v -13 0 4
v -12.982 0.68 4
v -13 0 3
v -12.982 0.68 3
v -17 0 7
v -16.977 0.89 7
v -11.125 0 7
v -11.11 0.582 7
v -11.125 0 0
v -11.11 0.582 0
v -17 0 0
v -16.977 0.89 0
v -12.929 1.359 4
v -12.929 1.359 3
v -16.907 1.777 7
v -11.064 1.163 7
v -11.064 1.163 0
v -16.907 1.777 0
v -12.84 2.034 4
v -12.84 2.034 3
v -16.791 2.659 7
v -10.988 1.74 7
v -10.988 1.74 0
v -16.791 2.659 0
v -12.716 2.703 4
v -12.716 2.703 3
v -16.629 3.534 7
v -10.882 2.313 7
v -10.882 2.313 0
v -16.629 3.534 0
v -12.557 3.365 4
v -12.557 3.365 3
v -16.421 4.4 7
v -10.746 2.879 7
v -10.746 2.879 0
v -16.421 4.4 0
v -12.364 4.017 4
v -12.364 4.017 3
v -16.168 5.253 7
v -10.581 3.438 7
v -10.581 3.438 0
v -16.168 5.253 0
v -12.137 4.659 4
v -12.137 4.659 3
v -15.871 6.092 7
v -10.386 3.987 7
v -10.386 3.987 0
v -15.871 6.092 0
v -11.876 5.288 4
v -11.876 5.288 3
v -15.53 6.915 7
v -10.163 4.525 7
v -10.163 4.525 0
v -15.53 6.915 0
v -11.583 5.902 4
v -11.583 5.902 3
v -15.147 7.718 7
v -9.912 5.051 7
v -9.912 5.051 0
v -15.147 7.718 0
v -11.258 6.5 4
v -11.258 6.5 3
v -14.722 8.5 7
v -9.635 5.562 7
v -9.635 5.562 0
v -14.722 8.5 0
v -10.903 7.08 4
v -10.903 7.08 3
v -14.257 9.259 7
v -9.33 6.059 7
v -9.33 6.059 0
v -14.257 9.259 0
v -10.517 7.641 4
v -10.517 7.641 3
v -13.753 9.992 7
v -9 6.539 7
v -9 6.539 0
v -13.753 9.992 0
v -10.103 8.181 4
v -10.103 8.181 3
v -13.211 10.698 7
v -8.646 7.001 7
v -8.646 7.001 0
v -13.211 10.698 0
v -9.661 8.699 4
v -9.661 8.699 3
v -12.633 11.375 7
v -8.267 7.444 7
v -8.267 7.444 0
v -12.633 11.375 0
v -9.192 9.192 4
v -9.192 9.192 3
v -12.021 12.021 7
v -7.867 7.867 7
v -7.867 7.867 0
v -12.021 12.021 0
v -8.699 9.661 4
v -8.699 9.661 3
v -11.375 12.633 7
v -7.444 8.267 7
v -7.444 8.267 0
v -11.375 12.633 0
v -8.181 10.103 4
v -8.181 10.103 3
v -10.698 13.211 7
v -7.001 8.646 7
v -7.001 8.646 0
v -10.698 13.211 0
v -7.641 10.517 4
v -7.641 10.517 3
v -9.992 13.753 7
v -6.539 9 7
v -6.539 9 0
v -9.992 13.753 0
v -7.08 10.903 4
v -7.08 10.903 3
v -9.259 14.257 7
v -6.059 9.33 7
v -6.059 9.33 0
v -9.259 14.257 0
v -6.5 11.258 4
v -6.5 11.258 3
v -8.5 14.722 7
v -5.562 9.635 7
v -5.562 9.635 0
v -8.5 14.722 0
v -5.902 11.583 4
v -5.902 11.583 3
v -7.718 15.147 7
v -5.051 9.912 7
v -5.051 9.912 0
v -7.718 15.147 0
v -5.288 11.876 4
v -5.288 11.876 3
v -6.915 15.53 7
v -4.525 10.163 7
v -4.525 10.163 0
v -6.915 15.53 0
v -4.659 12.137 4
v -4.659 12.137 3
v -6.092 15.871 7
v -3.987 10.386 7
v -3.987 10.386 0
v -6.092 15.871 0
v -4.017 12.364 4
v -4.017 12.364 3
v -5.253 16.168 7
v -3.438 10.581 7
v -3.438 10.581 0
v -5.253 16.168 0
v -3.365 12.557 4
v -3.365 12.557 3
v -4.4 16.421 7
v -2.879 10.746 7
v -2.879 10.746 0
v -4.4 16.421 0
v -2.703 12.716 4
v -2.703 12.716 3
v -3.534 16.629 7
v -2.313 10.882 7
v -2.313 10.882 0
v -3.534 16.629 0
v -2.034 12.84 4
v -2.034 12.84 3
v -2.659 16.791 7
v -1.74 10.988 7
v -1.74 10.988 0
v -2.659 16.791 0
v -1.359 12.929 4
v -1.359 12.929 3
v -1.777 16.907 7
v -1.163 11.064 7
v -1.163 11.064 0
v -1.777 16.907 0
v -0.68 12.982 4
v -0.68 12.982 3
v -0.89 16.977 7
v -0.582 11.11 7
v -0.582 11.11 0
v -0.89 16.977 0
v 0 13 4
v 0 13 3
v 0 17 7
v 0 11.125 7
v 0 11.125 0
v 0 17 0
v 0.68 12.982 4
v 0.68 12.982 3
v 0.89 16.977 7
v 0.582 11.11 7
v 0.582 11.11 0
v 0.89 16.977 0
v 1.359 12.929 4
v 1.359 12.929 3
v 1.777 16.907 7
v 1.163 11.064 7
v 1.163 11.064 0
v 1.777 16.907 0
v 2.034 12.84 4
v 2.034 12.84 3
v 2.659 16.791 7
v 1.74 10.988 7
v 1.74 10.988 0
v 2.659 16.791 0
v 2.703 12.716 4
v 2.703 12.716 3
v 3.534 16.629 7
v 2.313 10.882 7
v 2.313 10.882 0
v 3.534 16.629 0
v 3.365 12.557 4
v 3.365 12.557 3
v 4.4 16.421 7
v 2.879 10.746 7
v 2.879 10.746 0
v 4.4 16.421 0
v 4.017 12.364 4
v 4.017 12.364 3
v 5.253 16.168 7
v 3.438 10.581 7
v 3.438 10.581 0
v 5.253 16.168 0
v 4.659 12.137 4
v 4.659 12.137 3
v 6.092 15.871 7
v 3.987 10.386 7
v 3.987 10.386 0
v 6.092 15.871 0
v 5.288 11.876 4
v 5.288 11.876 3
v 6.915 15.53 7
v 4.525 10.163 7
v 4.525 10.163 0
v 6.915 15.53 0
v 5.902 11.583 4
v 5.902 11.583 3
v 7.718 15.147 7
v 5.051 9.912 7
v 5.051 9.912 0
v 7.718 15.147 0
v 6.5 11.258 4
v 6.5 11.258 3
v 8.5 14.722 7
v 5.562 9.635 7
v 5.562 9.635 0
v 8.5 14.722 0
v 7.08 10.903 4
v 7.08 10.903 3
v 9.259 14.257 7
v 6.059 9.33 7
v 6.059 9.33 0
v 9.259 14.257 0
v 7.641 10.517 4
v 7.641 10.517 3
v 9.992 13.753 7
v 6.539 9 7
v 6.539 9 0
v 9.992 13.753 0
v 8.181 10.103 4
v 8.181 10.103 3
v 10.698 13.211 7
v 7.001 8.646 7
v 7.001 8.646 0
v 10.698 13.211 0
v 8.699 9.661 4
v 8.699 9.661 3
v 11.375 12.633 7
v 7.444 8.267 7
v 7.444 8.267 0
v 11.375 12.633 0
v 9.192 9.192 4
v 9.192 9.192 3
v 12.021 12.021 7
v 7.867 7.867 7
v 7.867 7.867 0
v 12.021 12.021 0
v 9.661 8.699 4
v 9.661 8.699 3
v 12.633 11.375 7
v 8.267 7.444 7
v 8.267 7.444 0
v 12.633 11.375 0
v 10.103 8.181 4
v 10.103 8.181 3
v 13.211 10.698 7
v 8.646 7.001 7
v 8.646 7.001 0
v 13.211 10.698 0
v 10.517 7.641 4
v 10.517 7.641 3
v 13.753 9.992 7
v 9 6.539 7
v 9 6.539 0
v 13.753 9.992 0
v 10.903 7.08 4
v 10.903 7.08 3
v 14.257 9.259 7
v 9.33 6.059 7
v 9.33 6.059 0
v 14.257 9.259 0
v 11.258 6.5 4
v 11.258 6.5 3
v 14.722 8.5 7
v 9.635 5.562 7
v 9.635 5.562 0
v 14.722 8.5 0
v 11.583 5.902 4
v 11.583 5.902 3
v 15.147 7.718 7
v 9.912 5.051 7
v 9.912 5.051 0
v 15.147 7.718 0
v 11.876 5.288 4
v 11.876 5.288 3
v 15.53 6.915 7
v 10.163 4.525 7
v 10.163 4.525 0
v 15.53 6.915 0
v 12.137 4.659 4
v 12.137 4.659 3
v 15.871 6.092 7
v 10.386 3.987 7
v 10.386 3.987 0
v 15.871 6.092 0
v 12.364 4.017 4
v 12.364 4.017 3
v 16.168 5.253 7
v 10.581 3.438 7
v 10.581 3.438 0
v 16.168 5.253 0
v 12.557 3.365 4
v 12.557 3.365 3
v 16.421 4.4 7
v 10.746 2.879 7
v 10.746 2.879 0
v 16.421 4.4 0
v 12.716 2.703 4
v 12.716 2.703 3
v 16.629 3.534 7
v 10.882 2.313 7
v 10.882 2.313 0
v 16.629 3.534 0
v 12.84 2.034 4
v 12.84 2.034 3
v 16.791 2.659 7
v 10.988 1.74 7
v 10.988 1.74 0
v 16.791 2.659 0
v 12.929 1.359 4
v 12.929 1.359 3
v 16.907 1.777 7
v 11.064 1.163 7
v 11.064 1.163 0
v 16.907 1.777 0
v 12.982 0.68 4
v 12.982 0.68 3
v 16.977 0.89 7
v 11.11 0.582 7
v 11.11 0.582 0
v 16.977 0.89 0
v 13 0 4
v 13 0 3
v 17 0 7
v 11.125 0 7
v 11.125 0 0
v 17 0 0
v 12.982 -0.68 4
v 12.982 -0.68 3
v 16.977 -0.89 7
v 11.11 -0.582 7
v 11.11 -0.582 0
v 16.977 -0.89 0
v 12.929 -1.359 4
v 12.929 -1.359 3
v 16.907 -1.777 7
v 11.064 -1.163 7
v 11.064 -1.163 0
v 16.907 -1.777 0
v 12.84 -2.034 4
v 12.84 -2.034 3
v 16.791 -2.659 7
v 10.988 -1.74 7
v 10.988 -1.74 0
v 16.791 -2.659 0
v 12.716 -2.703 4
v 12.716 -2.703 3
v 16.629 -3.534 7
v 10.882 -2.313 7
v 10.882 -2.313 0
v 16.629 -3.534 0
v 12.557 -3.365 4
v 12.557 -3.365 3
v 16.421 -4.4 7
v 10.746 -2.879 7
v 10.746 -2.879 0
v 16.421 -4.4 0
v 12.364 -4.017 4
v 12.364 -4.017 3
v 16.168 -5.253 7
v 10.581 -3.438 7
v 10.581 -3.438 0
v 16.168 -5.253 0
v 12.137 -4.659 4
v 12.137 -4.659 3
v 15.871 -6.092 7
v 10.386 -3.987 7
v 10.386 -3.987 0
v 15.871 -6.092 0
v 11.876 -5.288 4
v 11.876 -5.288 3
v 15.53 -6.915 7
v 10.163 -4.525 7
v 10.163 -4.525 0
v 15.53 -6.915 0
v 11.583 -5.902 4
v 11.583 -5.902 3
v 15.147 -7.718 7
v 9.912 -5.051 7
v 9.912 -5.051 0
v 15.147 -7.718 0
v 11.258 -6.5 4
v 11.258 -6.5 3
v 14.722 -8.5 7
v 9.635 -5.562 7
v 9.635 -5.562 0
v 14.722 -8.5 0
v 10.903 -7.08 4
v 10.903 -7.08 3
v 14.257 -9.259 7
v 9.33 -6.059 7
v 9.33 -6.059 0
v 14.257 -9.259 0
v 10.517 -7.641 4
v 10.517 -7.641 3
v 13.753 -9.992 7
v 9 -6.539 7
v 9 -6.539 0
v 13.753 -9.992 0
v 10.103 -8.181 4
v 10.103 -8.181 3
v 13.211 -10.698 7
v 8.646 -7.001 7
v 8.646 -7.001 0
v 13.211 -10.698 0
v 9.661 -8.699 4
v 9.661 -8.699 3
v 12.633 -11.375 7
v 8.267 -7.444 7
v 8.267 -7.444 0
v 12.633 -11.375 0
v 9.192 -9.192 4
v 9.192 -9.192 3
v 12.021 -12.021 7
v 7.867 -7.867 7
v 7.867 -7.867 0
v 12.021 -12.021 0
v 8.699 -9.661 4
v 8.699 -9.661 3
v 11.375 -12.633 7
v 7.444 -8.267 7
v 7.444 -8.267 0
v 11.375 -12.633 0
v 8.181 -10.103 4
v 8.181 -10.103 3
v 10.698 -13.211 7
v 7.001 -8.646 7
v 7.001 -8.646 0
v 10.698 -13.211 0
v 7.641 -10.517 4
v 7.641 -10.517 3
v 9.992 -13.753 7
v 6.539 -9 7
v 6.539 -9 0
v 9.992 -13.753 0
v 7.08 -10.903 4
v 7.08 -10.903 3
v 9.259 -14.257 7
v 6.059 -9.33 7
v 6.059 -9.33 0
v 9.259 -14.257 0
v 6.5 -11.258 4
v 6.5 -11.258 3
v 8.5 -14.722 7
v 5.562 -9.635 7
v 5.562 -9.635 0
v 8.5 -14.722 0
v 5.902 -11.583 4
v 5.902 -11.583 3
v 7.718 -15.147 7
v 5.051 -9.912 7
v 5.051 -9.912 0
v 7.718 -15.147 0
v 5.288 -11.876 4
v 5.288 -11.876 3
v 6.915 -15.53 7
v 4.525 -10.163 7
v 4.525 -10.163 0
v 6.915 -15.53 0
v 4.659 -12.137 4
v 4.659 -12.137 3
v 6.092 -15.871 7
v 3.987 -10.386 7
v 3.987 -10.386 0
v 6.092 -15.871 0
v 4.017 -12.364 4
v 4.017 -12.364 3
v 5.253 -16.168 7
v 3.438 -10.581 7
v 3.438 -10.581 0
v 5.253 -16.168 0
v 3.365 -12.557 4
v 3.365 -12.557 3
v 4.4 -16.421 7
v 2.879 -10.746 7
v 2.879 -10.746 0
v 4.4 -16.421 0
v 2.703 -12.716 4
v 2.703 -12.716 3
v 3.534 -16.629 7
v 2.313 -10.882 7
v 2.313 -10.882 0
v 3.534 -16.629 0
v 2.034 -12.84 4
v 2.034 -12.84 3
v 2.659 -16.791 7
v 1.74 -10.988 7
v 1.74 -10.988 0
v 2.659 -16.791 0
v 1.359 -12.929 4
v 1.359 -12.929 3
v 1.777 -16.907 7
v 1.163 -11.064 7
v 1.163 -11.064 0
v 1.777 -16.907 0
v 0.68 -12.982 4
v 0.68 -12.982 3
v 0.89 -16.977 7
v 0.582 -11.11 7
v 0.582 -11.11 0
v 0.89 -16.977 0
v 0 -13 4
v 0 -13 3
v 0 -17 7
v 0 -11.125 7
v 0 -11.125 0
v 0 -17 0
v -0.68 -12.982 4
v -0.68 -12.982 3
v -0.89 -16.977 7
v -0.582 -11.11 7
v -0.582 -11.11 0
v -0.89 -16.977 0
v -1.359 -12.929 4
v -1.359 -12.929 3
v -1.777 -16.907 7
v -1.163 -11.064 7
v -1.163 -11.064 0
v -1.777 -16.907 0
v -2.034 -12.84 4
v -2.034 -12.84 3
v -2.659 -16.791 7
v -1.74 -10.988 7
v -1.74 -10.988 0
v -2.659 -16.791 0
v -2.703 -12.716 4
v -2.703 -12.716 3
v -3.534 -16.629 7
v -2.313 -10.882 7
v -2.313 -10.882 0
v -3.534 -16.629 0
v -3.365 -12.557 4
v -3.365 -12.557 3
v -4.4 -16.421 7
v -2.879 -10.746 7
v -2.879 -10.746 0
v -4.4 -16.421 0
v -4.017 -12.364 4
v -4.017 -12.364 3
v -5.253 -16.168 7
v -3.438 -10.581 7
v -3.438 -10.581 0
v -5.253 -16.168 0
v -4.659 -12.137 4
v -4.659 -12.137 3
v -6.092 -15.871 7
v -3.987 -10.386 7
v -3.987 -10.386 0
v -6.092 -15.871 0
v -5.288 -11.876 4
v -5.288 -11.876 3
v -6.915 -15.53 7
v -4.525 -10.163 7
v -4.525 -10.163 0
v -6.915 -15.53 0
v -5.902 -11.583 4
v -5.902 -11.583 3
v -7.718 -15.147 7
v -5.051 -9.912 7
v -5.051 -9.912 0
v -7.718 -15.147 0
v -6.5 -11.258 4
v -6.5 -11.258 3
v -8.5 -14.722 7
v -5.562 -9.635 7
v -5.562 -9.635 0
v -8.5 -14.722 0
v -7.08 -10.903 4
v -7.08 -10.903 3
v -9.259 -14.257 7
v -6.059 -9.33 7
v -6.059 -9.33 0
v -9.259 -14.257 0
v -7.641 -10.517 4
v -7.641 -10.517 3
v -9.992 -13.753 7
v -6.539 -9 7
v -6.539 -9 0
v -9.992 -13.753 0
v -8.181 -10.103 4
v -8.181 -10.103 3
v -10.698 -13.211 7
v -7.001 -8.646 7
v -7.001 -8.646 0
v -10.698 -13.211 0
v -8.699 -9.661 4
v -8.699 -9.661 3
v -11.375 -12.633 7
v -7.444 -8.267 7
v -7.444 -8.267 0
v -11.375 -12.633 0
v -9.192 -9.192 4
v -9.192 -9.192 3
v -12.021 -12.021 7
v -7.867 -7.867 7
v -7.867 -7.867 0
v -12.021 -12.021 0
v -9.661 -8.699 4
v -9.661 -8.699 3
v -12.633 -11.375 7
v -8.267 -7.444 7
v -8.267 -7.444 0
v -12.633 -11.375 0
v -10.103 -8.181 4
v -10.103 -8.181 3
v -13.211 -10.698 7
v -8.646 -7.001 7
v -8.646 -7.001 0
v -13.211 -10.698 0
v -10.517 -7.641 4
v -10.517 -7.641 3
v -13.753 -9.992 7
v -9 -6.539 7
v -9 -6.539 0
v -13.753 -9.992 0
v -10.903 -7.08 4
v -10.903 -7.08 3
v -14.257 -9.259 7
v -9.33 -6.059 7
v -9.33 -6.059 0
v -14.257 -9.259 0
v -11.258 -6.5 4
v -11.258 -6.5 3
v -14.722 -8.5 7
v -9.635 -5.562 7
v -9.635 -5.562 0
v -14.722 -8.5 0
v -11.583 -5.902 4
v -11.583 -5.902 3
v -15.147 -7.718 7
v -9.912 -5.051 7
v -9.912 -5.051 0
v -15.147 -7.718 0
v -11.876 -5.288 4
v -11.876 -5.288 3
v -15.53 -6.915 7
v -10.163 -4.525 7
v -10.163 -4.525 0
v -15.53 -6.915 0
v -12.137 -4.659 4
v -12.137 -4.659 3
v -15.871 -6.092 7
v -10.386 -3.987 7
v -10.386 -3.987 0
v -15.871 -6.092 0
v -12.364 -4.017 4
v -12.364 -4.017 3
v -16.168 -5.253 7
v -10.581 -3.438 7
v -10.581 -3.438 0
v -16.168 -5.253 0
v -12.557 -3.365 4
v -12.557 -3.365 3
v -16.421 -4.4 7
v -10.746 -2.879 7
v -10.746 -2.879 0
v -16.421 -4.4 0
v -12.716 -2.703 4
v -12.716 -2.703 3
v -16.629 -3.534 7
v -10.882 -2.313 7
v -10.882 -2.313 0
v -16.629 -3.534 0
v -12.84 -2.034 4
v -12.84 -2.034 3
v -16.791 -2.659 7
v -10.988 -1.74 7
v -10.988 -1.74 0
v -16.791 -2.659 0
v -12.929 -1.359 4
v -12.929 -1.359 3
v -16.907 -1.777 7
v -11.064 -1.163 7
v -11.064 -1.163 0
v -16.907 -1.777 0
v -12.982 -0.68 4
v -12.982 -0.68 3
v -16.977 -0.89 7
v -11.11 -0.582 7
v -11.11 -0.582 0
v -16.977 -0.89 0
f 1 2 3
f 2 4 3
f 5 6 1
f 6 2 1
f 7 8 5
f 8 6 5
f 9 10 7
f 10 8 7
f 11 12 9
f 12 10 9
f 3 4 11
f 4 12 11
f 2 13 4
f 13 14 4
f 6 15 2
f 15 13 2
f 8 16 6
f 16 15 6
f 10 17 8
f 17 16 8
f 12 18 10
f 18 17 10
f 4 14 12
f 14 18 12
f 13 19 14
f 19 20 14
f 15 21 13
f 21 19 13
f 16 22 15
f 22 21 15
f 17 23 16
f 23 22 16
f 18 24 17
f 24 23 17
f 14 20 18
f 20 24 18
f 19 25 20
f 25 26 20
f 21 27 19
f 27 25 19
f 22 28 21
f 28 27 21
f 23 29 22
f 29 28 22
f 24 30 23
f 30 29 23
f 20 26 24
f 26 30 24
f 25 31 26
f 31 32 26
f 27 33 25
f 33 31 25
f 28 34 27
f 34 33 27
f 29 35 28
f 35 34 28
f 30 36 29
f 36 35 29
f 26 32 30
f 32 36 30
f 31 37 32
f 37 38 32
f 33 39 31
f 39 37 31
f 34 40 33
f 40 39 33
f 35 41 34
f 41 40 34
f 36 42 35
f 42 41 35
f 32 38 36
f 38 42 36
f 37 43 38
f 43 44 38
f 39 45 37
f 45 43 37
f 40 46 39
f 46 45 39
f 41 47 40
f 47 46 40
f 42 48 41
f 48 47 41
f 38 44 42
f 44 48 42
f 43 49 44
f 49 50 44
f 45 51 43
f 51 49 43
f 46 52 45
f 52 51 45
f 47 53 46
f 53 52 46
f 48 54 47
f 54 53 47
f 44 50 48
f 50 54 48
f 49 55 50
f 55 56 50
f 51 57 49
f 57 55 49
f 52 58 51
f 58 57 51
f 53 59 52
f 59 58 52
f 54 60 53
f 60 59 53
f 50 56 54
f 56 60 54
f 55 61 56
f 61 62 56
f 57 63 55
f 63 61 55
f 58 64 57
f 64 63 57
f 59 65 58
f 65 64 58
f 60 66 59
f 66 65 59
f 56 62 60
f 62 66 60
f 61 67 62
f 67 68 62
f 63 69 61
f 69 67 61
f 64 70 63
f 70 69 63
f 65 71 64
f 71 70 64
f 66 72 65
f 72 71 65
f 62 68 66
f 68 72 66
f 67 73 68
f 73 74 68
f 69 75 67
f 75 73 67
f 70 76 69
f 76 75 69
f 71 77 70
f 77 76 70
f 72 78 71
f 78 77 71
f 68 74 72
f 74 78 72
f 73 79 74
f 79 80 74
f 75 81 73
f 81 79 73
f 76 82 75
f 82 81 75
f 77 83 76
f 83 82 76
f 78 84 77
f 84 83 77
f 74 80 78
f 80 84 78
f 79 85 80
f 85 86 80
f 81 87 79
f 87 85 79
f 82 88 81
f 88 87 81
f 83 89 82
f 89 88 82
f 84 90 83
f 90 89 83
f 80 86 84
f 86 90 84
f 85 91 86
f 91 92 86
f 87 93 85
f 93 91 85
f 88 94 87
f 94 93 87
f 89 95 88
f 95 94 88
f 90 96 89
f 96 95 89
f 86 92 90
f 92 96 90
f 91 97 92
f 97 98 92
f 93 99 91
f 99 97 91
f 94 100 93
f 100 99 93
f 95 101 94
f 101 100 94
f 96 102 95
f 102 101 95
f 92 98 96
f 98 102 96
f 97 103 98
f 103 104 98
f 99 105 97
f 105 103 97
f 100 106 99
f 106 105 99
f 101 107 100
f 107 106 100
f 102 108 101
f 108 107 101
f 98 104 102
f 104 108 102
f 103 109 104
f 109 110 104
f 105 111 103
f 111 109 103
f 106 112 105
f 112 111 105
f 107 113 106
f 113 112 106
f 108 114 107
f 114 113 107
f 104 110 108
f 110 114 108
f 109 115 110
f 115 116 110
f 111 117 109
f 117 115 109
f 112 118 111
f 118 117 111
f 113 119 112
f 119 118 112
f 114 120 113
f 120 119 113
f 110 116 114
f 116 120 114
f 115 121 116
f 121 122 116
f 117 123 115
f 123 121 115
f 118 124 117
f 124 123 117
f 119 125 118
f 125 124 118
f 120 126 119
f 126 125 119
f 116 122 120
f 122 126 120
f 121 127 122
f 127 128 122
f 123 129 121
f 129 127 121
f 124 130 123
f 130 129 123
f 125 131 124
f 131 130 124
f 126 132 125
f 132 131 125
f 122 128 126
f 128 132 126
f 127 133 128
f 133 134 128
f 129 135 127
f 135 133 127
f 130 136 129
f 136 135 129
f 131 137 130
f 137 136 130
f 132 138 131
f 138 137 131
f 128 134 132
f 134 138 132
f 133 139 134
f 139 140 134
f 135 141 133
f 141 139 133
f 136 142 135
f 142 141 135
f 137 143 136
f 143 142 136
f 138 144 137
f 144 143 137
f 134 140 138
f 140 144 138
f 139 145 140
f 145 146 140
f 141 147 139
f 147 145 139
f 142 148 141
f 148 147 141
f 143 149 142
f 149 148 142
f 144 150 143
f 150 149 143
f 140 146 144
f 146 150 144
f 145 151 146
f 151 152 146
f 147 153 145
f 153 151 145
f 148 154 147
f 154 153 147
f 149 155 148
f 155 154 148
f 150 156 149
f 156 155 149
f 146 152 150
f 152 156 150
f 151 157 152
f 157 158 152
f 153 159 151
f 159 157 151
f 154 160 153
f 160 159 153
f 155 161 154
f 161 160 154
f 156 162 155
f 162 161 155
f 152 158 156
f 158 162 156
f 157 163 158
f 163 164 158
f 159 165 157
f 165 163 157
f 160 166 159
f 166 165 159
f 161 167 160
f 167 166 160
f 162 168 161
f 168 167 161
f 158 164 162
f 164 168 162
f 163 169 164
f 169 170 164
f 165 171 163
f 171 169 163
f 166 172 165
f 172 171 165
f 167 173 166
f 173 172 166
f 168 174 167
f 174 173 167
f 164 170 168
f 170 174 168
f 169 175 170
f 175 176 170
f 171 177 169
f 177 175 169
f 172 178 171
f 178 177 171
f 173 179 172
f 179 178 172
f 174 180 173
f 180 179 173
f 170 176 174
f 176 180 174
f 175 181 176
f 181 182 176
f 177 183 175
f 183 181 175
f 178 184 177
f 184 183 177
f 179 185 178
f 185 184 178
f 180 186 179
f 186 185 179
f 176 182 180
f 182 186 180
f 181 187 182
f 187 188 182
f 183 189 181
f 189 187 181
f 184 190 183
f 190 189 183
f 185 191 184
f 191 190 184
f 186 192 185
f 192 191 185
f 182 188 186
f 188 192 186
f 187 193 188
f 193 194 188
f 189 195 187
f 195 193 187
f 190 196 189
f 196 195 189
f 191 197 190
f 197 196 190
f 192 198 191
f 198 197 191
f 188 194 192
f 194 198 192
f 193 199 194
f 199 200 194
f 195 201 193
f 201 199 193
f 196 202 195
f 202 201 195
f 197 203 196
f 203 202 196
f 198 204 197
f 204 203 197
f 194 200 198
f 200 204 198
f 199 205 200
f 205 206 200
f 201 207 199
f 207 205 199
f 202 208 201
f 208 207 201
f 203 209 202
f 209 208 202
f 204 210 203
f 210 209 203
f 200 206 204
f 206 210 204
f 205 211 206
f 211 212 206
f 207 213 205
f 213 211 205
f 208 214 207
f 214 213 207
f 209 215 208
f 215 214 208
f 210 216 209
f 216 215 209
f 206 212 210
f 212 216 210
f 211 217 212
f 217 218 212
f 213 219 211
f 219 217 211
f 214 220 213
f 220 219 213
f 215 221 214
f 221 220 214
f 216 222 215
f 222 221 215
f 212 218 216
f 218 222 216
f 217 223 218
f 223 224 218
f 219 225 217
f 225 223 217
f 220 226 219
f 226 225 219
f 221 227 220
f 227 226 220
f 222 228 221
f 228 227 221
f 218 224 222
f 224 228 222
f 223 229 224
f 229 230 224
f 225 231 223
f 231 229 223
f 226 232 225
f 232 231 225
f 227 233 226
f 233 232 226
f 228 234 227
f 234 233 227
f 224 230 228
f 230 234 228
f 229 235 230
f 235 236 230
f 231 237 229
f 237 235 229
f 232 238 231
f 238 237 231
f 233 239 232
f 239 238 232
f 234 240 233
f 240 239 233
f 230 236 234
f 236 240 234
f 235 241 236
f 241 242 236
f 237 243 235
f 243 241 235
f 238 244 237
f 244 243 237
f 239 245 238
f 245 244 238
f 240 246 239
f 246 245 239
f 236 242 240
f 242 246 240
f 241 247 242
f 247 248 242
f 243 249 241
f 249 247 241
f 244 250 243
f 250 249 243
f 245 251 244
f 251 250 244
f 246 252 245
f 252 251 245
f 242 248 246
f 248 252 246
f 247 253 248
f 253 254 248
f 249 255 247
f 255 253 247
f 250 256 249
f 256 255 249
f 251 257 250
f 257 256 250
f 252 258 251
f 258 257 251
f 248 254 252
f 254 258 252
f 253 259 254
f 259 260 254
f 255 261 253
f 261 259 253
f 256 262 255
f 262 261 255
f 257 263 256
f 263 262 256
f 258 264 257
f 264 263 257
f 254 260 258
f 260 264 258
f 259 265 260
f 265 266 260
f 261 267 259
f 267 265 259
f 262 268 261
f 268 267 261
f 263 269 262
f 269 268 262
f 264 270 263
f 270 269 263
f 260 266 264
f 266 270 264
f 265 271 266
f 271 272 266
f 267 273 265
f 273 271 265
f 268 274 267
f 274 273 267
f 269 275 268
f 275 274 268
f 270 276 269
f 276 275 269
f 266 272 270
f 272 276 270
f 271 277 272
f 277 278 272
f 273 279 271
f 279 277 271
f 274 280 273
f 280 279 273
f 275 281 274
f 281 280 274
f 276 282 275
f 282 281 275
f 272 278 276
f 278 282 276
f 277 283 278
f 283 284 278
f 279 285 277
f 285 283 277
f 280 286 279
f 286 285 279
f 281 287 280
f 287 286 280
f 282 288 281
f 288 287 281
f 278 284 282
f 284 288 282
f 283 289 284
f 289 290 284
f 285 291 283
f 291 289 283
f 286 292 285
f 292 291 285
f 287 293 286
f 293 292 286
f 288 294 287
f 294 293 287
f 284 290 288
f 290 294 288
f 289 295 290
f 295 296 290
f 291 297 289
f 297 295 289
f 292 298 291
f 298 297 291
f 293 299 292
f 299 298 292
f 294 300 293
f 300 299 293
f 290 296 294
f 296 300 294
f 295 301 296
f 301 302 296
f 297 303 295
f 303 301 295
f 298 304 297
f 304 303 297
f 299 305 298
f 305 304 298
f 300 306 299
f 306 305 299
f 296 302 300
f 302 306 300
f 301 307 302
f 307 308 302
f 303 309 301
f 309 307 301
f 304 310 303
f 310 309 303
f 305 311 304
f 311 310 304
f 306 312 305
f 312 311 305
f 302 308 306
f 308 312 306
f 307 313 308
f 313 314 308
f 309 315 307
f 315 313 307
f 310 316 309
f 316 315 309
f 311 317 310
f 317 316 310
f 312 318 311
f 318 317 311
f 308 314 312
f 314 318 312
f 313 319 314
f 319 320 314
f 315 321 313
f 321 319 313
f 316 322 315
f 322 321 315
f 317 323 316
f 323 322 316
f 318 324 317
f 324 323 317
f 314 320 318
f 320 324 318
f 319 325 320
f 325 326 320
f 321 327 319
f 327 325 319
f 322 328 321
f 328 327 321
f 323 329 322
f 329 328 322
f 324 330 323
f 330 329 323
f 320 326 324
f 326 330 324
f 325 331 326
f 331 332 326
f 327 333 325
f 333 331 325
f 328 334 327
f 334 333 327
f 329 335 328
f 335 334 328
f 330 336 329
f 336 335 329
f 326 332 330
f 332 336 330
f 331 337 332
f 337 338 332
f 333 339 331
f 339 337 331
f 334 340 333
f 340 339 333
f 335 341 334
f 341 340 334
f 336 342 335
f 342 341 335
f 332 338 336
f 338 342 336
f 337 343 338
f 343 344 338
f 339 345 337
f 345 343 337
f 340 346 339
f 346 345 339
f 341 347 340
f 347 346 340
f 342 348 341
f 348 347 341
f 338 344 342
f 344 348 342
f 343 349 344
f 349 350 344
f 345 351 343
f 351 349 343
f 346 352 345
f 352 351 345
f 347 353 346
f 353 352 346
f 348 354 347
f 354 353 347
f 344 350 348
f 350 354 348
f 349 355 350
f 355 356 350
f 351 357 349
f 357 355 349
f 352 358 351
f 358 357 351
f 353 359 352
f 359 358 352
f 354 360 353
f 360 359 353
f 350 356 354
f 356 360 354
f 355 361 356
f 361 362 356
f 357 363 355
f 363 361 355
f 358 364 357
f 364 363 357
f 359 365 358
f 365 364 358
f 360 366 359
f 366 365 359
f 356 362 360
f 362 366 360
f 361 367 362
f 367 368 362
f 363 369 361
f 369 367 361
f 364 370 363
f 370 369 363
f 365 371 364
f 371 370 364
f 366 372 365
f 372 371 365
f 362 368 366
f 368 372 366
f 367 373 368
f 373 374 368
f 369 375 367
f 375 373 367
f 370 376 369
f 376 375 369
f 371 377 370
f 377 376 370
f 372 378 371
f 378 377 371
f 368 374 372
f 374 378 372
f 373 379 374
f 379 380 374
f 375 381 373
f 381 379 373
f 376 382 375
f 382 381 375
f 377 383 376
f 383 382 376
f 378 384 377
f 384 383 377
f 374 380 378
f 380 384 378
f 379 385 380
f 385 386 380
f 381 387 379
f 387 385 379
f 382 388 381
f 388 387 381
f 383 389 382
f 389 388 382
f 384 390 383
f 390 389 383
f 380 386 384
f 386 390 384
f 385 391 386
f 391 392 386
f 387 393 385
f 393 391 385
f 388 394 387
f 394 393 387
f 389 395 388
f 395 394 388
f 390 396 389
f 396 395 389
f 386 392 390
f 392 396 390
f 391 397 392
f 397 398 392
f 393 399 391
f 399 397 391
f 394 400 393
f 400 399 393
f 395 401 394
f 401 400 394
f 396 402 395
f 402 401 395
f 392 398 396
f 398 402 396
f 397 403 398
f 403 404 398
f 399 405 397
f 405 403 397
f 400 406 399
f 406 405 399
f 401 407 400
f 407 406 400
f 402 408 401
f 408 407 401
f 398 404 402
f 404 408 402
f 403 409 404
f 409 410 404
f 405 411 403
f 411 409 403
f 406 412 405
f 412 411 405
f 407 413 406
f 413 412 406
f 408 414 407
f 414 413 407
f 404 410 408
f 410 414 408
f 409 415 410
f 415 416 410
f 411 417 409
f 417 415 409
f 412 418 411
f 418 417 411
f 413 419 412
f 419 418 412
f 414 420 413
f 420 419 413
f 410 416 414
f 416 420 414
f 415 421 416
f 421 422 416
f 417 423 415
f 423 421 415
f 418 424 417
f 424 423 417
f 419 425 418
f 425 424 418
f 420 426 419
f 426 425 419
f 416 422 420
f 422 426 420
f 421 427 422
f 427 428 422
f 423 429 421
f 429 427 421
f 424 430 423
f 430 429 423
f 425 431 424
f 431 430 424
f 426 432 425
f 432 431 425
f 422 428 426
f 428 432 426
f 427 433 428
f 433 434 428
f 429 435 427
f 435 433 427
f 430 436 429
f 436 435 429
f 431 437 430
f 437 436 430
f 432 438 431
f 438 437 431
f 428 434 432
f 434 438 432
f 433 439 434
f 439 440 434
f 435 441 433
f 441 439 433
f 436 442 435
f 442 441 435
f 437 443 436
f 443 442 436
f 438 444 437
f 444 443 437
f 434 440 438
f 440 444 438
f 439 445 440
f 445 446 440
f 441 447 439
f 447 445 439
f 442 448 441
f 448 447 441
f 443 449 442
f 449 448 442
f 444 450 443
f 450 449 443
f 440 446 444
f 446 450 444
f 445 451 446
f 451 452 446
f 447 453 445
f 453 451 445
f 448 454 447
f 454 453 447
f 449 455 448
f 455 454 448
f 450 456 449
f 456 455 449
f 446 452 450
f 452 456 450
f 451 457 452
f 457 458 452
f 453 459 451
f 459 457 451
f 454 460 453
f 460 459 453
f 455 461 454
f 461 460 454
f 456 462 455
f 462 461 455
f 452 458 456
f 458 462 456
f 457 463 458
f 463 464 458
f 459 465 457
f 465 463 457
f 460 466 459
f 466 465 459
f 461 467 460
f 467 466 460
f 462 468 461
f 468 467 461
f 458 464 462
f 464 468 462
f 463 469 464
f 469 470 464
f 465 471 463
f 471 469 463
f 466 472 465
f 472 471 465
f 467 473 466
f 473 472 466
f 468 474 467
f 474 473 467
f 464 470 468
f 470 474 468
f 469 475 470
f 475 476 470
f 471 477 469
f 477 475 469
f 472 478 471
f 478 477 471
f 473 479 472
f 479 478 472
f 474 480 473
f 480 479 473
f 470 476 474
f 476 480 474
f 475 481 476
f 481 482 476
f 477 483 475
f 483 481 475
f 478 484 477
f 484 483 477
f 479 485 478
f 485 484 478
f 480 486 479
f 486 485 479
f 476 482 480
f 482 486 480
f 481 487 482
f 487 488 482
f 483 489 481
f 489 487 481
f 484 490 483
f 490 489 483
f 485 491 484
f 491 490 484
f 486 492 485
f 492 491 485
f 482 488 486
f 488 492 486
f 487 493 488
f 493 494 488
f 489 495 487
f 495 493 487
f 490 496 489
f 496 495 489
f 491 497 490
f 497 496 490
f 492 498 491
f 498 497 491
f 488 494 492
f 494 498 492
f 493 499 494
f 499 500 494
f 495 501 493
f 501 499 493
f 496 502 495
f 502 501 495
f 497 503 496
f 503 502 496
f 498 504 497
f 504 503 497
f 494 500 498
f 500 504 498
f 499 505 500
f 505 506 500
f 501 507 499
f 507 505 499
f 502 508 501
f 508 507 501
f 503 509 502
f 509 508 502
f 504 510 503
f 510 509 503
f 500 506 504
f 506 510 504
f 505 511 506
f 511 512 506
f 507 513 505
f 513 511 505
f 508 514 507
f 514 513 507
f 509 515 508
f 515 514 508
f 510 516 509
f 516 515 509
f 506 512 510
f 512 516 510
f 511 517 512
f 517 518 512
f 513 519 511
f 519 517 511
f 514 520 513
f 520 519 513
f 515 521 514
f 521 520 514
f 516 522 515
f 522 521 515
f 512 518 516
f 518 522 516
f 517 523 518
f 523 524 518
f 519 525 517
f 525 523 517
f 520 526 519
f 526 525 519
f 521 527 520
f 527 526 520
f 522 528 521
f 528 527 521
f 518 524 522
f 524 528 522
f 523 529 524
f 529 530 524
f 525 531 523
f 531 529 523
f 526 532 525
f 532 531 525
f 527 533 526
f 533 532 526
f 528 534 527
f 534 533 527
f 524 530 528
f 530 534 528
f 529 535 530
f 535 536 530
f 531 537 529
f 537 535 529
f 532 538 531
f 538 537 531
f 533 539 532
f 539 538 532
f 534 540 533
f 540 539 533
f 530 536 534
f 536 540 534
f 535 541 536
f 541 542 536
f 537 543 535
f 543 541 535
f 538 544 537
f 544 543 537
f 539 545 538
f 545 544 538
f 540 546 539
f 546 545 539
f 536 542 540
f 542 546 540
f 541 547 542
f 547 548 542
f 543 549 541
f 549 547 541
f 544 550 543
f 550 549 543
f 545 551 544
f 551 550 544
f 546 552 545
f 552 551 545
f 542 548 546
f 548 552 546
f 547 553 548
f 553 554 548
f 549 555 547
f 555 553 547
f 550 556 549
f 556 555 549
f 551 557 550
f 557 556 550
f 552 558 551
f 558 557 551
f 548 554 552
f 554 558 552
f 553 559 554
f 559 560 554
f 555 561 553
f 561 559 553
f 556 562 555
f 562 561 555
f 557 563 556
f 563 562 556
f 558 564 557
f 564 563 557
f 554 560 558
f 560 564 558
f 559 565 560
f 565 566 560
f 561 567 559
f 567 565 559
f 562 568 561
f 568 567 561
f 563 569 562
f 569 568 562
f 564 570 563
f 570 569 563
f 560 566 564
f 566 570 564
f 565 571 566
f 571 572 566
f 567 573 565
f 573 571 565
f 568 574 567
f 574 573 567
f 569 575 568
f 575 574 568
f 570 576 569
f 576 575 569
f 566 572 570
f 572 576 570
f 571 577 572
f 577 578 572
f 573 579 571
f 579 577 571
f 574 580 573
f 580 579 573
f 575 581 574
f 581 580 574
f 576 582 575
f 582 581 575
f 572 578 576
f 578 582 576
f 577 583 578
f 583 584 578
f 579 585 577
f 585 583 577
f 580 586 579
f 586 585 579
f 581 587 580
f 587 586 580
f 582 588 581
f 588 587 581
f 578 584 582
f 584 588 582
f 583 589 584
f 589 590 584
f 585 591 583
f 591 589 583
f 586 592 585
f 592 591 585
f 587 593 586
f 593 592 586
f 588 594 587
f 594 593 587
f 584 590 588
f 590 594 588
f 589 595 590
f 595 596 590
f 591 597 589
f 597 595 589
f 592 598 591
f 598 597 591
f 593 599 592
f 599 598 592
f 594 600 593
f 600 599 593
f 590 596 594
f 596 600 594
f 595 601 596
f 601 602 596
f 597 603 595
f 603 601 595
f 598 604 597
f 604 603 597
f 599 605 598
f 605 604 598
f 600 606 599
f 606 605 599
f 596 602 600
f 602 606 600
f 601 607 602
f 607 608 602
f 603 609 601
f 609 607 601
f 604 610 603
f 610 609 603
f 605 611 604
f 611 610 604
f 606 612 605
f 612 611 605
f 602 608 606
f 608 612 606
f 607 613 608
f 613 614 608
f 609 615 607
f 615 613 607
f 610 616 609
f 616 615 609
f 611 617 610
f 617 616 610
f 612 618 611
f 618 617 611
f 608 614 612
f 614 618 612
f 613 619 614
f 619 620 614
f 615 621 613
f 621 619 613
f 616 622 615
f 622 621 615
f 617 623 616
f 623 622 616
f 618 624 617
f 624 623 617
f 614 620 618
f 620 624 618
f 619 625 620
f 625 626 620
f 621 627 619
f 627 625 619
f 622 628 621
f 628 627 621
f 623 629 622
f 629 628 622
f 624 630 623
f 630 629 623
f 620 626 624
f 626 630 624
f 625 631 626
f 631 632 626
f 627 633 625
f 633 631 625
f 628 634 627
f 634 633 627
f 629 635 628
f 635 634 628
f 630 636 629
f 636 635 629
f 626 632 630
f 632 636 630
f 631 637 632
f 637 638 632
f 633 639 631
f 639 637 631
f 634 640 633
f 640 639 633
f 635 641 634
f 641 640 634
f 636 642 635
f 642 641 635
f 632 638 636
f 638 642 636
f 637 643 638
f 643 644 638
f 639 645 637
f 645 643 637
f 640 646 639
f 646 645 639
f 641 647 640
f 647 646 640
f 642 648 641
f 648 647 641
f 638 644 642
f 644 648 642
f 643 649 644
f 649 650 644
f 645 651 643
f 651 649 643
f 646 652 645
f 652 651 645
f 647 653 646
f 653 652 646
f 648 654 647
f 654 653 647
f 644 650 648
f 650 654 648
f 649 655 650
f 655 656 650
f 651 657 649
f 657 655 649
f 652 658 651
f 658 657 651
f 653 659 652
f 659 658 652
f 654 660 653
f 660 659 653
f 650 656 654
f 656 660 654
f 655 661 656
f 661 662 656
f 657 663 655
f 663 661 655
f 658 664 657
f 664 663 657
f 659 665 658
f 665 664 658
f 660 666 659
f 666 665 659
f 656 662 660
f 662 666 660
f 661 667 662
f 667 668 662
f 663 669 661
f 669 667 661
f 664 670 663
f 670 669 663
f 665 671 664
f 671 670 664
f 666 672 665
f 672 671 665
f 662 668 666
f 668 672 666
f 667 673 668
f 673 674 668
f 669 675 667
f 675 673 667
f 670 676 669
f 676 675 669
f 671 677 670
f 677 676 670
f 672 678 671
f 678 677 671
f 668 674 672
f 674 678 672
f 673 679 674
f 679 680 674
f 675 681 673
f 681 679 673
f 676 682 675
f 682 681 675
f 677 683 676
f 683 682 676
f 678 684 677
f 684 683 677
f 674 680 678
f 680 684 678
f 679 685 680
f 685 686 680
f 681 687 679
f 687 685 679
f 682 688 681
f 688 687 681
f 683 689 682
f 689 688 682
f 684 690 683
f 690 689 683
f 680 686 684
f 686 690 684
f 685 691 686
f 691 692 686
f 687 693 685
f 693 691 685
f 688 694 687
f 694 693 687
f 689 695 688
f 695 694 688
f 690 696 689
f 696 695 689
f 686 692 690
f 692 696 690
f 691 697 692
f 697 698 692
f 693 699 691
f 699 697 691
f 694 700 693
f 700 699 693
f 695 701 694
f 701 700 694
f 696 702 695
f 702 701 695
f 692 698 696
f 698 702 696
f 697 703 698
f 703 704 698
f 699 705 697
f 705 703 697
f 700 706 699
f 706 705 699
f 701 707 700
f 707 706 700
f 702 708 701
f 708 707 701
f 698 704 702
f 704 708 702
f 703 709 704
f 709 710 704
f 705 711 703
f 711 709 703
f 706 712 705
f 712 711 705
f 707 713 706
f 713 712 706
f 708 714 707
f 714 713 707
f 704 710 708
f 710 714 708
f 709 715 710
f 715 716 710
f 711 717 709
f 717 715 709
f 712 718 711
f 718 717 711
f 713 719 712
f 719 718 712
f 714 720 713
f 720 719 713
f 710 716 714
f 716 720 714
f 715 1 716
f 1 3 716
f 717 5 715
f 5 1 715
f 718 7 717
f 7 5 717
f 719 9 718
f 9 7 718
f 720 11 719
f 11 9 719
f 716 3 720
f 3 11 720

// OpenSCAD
// ==========================================
// 608 Skateboard Bearing Pulley Ring
// ==========================================

/* [Bearing Dimensions] */
// Standard 608 outer diameter is 22mm. Add ~0.2mm - 0.3mm for press-fit tolerance.
bearing_od = 22.25; 
// Standard 608 width is 7mm.
bearing_width = 7.0; 

/* [Pulley Dimensions] */
// Outer diameter of the pulley flanges
pulley_od = 34.0;
// Diameter of the rope/string groove (must be larger than bearing_od)
groove_od = 26.0;
// Width of the flat bottom of the groove (adjust to your rope thickness)
groove_bottom_width = 1;
// Thickness of the outer rims/flanges
flange_rim_thickness = 0;

/* [Render Quality] */
$fn = 120;

// ==========================================
// Calculations & Geometry
// ==========================================
r_in = bearing_od / 2;
r_groove = groove_od / 2;
r_out = pulley_od / 2;

// Ensure groove width fits inside the bearing width
safe_groove_w = min(groove_bottom_width, bearing_width - (flange_rim_thickness * 2));

module bearing_pulley() {
    rotate_extrude() {
        polygon(points = [
            [r_in, 0],                                                   // Bottom inner corner
            [r_out, 0],                                                  // Bottom outer corner
            [r_out, flange_rim_thickness],                               // Lower flange rim
            [r_groove, (bearing_width - safe_groove_w) / 2],             // Bottom of V-groove
            [r_groove, (bearing_width + safe_groove_w) / 2],             // Top of V-groove
            [r_out, bearing_width - flange_rim_thickness],               // Upper flange rim
            [r_out, bearing_width],                                      // Top outer corner
            [r_in, bearing_width]                                        // Top inner corner
        ]);
    }
}

bearing_pulley();
